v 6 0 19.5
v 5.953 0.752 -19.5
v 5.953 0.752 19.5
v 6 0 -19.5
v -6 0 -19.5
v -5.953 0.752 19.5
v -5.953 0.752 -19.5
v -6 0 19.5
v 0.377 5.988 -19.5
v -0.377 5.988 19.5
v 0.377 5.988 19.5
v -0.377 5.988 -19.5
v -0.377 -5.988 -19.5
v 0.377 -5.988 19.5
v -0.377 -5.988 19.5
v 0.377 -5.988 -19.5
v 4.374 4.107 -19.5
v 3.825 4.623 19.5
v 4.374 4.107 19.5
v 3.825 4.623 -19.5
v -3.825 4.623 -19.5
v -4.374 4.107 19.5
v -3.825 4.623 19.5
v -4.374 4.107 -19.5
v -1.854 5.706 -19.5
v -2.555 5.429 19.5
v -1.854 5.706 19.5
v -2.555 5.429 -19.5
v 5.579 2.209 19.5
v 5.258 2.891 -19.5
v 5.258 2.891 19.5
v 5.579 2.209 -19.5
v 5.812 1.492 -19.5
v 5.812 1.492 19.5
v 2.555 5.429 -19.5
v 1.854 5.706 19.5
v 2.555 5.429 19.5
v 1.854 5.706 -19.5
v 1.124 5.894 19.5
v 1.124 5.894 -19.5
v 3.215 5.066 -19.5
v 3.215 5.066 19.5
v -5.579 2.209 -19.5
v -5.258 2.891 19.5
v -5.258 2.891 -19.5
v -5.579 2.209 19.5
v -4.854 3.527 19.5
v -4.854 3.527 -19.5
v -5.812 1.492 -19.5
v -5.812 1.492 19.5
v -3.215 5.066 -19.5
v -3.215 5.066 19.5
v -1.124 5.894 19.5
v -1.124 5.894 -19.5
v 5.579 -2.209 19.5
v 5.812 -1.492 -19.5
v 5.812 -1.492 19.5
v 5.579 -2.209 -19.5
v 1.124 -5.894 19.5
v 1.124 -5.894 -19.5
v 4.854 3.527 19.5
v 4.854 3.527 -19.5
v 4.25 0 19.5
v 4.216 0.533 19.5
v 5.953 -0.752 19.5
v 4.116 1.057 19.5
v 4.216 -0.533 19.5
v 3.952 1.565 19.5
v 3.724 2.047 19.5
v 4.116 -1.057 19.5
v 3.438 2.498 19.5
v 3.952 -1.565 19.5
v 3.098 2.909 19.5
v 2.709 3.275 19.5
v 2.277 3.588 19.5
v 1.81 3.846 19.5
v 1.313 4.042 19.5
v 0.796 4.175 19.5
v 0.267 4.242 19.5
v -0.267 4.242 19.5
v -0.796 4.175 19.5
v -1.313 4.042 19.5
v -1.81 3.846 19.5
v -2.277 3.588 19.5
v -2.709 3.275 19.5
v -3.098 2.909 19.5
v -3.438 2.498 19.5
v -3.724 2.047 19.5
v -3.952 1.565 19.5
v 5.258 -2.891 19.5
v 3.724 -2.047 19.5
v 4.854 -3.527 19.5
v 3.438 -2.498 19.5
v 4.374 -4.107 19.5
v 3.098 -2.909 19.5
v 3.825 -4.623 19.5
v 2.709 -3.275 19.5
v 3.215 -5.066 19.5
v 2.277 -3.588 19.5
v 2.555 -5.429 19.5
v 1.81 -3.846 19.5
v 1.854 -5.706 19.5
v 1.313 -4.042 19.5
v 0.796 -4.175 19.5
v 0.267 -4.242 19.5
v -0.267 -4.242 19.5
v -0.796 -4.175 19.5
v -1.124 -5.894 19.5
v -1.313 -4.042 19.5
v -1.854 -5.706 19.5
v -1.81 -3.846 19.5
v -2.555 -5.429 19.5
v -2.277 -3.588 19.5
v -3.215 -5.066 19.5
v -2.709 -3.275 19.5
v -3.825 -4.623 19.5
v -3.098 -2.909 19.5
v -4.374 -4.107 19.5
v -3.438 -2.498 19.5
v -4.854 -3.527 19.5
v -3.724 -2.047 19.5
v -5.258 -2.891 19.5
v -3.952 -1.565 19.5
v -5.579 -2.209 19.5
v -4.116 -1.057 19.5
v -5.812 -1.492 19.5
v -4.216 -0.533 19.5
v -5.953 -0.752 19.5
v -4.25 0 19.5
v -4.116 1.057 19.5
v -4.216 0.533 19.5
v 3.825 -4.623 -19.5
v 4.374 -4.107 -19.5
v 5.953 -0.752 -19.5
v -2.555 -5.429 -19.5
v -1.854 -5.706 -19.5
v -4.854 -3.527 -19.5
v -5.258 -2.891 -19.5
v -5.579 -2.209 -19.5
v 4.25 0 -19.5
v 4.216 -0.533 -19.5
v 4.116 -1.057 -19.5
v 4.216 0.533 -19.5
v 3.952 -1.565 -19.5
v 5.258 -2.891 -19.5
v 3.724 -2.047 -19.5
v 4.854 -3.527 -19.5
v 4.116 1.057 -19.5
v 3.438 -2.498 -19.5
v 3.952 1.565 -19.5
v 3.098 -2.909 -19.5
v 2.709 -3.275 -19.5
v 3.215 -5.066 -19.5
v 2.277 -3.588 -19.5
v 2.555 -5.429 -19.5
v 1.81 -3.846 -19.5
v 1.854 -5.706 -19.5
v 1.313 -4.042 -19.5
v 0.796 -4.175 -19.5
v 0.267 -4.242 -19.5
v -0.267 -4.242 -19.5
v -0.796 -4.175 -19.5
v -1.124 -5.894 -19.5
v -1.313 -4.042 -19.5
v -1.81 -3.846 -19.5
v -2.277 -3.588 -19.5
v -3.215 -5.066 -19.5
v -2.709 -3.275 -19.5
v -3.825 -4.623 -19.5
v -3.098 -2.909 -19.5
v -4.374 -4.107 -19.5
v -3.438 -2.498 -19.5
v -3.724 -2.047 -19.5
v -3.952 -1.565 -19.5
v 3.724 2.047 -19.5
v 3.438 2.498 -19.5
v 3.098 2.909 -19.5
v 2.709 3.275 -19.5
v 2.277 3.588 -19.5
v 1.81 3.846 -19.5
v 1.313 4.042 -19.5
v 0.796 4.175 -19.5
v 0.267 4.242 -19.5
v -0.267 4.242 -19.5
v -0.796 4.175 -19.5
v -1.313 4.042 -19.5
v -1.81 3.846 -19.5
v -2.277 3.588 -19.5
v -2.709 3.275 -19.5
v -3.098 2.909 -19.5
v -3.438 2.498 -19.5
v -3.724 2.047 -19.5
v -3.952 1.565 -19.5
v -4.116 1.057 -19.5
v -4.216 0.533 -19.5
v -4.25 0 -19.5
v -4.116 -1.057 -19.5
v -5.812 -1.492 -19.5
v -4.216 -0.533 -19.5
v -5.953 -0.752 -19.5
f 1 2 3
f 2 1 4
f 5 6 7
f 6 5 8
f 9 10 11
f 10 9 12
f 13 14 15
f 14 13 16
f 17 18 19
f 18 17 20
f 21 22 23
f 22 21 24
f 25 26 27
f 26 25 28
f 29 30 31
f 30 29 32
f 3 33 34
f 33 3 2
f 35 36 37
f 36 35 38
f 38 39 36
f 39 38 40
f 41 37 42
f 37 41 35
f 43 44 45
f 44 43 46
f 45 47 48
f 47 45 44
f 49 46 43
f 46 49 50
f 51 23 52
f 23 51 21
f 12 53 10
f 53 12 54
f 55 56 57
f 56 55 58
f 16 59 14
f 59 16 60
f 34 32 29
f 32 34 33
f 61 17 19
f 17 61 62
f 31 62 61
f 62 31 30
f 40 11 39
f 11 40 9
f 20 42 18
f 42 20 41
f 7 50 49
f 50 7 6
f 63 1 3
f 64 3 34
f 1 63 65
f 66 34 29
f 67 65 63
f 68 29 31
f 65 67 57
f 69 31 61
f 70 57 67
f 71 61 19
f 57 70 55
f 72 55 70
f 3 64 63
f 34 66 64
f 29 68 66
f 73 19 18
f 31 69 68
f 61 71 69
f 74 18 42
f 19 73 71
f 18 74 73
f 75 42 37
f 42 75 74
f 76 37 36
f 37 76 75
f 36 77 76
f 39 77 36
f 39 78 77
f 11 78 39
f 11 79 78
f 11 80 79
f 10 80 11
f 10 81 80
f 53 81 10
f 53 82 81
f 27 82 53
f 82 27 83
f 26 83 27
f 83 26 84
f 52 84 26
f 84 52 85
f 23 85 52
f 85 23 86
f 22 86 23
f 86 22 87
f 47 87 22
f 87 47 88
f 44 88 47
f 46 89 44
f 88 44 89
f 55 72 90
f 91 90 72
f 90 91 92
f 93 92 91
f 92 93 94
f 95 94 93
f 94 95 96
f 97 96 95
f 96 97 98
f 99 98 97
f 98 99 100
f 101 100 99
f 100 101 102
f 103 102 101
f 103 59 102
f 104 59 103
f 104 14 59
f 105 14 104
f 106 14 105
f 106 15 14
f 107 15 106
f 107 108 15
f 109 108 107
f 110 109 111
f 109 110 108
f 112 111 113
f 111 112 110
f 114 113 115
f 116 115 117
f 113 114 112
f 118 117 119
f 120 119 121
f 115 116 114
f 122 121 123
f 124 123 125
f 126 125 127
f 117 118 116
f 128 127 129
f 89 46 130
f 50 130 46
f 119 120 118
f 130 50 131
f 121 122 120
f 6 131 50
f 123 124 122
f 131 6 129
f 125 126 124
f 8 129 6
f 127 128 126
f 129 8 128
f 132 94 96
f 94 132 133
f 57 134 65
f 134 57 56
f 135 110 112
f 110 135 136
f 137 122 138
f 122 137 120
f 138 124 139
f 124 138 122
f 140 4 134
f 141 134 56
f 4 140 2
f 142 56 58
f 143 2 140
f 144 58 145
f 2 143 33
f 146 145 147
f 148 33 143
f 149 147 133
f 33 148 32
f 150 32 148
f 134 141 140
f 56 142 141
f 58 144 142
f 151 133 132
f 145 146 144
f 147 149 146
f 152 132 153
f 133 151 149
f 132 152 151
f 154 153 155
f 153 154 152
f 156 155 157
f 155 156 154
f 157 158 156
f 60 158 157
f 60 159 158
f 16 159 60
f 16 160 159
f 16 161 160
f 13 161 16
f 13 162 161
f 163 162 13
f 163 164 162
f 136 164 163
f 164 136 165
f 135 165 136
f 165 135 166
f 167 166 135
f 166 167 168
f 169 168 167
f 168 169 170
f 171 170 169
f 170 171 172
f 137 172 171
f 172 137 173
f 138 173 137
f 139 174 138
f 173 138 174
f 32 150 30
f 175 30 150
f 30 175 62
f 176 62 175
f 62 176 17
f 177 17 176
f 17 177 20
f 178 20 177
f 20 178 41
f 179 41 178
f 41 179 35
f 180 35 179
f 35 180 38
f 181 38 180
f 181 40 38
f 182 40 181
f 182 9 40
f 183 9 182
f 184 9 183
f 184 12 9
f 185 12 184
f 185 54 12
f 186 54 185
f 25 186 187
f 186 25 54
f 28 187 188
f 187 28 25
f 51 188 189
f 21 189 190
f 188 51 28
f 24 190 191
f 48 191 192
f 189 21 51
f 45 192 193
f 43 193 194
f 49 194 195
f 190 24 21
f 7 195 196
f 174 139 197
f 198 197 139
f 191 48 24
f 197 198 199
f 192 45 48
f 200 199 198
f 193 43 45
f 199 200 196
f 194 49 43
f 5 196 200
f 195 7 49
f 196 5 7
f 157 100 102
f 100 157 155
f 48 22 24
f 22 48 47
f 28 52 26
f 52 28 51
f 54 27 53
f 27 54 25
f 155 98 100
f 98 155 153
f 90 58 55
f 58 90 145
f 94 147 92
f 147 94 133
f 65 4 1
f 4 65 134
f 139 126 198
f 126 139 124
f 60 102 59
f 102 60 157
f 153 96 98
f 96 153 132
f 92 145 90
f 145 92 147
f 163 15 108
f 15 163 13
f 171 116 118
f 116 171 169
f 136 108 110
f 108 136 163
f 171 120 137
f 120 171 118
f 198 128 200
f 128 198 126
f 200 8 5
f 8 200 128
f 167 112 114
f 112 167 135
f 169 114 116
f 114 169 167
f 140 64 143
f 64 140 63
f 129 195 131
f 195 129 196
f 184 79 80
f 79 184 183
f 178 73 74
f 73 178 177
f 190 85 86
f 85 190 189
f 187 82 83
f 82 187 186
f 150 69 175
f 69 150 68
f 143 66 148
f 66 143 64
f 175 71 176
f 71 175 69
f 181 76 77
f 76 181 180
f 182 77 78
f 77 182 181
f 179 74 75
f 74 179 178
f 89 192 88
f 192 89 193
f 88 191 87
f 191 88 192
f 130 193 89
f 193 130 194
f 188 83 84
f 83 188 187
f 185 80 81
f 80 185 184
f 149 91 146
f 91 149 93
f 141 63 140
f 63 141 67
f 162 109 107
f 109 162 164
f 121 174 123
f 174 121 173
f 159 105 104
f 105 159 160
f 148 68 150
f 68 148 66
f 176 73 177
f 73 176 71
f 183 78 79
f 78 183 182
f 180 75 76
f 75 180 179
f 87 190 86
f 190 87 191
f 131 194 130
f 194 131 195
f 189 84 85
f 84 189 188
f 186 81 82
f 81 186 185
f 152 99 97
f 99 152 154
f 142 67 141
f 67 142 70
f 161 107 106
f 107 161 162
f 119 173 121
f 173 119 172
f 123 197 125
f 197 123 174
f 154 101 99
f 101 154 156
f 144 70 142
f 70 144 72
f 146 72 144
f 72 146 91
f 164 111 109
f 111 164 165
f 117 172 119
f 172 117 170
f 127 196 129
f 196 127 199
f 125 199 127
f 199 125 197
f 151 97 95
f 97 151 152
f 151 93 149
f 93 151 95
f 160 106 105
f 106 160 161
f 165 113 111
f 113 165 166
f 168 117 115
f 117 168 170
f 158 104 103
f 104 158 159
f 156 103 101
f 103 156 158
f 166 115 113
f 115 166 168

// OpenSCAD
$fn = 50;


difference() {
	union() {
		translate(v = [0, 0, -19.5000000000]) {
			cylinder(h = 39, r = 6.0000000000);
		}
	}
	union() {
		translate(v = [0, 0, -100.0000000000]) {
			cylinder(h = 200, r = 4.2500000000);
		}
	}
}
